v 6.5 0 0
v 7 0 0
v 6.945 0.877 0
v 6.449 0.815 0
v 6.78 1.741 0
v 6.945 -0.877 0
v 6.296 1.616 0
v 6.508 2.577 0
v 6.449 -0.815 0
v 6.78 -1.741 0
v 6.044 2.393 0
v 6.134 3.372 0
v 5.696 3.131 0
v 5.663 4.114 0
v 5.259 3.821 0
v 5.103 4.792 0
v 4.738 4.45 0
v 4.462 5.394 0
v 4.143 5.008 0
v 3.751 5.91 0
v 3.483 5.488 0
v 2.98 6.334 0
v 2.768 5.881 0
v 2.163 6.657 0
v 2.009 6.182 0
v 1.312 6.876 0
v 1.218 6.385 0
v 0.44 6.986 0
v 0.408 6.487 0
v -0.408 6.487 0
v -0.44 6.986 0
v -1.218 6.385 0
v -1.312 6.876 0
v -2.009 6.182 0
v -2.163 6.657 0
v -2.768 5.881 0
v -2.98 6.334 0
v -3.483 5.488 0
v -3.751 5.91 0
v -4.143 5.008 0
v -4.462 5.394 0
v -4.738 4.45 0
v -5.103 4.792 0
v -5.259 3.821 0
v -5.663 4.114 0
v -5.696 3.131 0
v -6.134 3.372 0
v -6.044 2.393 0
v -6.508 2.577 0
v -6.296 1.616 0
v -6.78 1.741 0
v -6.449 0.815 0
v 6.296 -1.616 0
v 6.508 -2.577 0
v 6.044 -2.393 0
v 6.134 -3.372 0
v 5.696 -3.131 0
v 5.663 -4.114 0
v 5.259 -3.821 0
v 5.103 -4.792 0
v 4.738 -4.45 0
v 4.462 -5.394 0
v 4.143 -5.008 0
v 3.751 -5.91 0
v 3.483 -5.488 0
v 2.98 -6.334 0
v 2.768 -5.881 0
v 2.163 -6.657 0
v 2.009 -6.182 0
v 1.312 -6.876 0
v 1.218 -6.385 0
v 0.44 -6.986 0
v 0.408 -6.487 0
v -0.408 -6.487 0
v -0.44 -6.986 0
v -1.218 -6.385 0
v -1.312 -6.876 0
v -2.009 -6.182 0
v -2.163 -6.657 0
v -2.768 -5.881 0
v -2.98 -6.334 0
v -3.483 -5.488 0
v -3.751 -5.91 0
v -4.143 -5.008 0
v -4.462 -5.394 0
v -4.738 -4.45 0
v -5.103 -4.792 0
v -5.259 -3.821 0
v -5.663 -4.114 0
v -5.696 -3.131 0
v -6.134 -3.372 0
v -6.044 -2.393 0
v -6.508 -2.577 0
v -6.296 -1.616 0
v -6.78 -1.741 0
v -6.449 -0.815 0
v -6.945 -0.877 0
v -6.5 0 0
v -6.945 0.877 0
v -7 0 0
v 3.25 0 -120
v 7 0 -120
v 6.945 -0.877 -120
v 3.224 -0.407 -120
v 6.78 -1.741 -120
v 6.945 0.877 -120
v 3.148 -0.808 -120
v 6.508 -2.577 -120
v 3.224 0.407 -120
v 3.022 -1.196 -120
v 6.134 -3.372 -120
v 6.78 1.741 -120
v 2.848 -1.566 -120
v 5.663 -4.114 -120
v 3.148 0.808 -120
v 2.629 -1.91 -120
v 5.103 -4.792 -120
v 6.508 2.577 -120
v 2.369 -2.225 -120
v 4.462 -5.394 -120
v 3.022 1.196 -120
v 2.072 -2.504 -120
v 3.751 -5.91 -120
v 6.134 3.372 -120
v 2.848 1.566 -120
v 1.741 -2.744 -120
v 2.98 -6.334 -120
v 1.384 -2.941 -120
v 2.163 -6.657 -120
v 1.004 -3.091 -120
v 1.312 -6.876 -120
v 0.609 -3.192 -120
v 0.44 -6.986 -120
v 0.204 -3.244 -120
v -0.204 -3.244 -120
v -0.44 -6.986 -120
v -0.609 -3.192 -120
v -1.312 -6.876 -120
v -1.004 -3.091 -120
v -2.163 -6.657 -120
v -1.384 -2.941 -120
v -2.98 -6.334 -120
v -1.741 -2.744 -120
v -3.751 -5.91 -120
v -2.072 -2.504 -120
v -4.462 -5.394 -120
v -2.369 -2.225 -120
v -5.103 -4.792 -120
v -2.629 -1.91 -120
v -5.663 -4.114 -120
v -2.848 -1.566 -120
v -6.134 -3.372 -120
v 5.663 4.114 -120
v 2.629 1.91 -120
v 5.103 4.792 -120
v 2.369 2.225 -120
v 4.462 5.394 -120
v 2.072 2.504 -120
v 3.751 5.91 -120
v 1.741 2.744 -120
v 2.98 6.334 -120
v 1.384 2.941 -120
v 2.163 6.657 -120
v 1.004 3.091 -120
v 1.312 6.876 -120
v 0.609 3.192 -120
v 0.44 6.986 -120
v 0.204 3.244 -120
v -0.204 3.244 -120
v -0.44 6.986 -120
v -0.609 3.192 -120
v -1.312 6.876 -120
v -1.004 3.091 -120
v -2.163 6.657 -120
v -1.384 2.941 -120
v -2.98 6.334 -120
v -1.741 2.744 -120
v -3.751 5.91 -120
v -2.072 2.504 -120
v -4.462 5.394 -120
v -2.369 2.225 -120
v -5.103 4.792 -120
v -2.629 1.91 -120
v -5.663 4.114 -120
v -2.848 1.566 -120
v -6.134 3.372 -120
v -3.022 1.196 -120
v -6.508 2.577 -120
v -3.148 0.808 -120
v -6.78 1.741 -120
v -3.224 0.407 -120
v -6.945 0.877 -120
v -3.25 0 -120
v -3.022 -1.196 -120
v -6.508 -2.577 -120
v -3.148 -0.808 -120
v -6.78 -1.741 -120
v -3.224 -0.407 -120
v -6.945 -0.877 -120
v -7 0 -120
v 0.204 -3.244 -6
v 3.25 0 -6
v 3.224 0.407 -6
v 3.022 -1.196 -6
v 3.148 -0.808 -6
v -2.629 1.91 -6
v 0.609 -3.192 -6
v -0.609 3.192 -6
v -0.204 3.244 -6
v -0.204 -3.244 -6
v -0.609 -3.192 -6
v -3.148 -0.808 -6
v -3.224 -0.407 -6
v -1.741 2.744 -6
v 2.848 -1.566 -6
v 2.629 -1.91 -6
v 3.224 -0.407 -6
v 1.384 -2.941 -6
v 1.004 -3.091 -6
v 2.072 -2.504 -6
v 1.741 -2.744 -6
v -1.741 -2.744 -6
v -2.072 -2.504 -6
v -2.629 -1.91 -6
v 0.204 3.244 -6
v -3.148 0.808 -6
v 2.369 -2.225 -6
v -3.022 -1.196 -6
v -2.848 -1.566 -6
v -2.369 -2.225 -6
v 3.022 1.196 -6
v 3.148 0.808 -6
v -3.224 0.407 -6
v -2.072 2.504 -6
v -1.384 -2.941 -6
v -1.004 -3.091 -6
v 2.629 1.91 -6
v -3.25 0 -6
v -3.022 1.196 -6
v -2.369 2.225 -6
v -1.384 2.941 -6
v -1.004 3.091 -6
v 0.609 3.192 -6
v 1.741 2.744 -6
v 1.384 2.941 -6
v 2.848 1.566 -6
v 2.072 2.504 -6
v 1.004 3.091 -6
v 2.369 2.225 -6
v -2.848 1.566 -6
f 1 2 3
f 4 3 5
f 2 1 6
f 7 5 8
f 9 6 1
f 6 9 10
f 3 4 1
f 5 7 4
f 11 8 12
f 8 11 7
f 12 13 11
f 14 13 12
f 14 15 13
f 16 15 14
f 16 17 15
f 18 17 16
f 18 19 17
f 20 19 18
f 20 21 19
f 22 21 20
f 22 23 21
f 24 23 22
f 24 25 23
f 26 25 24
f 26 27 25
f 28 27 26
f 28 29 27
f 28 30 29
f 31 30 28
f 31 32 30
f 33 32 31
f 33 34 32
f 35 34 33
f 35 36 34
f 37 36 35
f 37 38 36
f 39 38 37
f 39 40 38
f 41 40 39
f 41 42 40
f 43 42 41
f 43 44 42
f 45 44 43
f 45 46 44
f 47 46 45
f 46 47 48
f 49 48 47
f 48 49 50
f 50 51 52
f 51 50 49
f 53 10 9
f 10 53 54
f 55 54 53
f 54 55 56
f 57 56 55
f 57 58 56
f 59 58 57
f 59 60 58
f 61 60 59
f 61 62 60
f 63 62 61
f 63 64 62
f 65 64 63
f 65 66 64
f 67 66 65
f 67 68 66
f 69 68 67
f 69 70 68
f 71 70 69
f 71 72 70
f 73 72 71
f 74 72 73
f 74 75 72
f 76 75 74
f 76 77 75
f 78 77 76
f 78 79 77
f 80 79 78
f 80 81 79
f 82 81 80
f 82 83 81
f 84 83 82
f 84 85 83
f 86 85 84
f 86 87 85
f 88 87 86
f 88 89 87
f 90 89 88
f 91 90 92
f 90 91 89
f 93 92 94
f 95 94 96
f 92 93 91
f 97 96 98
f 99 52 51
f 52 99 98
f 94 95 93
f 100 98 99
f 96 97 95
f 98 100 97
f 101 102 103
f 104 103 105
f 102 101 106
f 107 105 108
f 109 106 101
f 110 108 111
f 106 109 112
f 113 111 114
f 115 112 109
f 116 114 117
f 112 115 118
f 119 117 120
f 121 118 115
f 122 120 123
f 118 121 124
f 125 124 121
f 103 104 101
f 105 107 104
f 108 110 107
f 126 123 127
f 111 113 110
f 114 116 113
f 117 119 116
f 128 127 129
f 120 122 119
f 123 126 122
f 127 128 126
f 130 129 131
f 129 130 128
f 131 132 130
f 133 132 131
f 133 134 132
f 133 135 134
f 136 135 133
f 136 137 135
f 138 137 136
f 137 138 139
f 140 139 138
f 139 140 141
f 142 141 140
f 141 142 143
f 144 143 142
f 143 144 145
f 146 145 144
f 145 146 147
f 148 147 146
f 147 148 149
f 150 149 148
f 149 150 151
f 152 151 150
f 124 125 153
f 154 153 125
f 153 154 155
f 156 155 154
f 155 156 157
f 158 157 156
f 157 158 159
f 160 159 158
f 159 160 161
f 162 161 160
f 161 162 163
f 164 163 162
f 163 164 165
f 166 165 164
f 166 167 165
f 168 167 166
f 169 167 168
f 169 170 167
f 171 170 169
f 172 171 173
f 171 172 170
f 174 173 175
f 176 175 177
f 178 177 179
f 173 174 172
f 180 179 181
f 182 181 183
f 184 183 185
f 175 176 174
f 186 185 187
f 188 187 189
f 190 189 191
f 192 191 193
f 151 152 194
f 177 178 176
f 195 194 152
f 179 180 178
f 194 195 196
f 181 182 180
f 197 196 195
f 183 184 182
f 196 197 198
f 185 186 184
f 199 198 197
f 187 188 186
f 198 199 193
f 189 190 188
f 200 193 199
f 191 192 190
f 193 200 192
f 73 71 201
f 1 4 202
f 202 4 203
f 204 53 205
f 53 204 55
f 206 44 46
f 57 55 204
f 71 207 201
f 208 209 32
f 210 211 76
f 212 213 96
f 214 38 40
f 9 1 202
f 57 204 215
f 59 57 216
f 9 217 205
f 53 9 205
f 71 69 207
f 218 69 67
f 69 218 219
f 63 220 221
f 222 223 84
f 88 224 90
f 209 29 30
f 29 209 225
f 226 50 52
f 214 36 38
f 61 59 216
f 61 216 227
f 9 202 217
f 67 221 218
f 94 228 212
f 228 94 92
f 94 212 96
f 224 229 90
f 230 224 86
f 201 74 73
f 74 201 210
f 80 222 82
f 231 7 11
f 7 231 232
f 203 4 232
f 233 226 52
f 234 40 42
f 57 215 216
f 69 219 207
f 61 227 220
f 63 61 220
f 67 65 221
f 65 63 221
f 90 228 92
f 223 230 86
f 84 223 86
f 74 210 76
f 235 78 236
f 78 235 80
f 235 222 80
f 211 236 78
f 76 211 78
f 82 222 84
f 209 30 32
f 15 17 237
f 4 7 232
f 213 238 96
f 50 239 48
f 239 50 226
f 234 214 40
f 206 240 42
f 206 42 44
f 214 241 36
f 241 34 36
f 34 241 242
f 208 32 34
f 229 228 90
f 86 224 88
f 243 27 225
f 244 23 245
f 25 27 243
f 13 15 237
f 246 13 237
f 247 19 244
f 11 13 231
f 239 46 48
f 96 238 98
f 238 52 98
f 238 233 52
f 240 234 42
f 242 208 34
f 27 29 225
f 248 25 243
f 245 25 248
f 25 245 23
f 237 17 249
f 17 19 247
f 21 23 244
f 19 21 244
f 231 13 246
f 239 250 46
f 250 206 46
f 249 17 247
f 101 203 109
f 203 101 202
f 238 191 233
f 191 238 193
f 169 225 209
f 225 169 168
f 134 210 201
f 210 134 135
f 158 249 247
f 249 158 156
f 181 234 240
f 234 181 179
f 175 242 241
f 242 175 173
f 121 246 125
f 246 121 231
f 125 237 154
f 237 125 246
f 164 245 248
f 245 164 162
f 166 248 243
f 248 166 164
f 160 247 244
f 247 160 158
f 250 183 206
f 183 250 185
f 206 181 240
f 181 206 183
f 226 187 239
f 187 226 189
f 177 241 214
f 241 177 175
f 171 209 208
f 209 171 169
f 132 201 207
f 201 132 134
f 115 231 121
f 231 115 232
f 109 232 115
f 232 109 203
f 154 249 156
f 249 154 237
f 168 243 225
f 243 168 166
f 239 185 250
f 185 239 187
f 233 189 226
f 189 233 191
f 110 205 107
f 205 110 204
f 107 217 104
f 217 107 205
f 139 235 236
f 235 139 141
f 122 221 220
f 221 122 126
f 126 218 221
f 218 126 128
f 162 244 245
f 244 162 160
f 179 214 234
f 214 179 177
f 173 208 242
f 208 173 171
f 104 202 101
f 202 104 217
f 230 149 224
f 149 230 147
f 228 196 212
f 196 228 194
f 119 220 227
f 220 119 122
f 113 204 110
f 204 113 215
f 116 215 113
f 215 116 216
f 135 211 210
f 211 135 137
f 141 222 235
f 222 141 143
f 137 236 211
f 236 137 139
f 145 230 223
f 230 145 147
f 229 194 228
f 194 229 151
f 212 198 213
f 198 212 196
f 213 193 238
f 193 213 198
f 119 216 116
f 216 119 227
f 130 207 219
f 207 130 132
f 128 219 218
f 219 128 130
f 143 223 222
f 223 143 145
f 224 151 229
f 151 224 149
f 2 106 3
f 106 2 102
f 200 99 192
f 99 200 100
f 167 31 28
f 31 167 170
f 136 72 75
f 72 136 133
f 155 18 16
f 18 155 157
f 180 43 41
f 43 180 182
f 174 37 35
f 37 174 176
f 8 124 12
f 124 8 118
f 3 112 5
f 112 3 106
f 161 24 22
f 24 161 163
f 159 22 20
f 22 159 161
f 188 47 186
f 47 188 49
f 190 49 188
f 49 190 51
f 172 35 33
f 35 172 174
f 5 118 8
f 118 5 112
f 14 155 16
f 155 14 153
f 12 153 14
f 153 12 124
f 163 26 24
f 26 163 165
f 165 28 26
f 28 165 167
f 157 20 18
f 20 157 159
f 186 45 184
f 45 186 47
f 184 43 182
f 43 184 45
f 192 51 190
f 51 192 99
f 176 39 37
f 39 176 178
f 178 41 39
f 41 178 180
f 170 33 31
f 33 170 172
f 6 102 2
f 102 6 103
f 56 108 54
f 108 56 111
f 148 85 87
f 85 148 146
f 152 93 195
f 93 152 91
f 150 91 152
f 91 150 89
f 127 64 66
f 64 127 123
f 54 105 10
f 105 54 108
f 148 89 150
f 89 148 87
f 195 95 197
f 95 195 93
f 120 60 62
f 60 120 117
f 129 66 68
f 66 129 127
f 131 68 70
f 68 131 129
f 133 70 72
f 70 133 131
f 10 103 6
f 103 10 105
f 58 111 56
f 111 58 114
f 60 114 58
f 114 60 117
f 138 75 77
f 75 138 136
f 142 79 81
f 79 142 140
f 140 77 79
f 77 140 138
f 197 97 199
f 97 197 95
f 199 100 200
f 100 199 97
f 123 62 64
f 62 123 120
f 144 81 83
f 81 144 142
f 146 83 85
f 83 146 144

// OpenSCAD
$fn = 50;


difference() {
	union() {
		translate(v = [0, 0, -120.0000000000]) {
			cylinder(h = 120, r = 7.0000000000);
		}
	}
	union() {
		translate(v = [0, 0, 0]) {
			rotate(a = [0, 0, 0]) {
				difference() {
					union() {
						#translate(v = [0, 0, -120.0000000000]) {
							cylinder(h = 120, r = 2.2500000000);
						}
						#translate(v = [0, 0, -6]) {
							cylinder(h = 6, r1 = 3.2500000000, r2 = 6.5000000000);
						}
						#translate(v = [0, 0, -120.0000000000]) {
							cylinder(h = 120, r = 3.2500000000);
						}
						#translate(v = [0, 0, -120.0000000000]) {
							cylinder(h = 120, r = 2.2500000000);
						}
					}
					union();
				}
			}
		}
	}
}
